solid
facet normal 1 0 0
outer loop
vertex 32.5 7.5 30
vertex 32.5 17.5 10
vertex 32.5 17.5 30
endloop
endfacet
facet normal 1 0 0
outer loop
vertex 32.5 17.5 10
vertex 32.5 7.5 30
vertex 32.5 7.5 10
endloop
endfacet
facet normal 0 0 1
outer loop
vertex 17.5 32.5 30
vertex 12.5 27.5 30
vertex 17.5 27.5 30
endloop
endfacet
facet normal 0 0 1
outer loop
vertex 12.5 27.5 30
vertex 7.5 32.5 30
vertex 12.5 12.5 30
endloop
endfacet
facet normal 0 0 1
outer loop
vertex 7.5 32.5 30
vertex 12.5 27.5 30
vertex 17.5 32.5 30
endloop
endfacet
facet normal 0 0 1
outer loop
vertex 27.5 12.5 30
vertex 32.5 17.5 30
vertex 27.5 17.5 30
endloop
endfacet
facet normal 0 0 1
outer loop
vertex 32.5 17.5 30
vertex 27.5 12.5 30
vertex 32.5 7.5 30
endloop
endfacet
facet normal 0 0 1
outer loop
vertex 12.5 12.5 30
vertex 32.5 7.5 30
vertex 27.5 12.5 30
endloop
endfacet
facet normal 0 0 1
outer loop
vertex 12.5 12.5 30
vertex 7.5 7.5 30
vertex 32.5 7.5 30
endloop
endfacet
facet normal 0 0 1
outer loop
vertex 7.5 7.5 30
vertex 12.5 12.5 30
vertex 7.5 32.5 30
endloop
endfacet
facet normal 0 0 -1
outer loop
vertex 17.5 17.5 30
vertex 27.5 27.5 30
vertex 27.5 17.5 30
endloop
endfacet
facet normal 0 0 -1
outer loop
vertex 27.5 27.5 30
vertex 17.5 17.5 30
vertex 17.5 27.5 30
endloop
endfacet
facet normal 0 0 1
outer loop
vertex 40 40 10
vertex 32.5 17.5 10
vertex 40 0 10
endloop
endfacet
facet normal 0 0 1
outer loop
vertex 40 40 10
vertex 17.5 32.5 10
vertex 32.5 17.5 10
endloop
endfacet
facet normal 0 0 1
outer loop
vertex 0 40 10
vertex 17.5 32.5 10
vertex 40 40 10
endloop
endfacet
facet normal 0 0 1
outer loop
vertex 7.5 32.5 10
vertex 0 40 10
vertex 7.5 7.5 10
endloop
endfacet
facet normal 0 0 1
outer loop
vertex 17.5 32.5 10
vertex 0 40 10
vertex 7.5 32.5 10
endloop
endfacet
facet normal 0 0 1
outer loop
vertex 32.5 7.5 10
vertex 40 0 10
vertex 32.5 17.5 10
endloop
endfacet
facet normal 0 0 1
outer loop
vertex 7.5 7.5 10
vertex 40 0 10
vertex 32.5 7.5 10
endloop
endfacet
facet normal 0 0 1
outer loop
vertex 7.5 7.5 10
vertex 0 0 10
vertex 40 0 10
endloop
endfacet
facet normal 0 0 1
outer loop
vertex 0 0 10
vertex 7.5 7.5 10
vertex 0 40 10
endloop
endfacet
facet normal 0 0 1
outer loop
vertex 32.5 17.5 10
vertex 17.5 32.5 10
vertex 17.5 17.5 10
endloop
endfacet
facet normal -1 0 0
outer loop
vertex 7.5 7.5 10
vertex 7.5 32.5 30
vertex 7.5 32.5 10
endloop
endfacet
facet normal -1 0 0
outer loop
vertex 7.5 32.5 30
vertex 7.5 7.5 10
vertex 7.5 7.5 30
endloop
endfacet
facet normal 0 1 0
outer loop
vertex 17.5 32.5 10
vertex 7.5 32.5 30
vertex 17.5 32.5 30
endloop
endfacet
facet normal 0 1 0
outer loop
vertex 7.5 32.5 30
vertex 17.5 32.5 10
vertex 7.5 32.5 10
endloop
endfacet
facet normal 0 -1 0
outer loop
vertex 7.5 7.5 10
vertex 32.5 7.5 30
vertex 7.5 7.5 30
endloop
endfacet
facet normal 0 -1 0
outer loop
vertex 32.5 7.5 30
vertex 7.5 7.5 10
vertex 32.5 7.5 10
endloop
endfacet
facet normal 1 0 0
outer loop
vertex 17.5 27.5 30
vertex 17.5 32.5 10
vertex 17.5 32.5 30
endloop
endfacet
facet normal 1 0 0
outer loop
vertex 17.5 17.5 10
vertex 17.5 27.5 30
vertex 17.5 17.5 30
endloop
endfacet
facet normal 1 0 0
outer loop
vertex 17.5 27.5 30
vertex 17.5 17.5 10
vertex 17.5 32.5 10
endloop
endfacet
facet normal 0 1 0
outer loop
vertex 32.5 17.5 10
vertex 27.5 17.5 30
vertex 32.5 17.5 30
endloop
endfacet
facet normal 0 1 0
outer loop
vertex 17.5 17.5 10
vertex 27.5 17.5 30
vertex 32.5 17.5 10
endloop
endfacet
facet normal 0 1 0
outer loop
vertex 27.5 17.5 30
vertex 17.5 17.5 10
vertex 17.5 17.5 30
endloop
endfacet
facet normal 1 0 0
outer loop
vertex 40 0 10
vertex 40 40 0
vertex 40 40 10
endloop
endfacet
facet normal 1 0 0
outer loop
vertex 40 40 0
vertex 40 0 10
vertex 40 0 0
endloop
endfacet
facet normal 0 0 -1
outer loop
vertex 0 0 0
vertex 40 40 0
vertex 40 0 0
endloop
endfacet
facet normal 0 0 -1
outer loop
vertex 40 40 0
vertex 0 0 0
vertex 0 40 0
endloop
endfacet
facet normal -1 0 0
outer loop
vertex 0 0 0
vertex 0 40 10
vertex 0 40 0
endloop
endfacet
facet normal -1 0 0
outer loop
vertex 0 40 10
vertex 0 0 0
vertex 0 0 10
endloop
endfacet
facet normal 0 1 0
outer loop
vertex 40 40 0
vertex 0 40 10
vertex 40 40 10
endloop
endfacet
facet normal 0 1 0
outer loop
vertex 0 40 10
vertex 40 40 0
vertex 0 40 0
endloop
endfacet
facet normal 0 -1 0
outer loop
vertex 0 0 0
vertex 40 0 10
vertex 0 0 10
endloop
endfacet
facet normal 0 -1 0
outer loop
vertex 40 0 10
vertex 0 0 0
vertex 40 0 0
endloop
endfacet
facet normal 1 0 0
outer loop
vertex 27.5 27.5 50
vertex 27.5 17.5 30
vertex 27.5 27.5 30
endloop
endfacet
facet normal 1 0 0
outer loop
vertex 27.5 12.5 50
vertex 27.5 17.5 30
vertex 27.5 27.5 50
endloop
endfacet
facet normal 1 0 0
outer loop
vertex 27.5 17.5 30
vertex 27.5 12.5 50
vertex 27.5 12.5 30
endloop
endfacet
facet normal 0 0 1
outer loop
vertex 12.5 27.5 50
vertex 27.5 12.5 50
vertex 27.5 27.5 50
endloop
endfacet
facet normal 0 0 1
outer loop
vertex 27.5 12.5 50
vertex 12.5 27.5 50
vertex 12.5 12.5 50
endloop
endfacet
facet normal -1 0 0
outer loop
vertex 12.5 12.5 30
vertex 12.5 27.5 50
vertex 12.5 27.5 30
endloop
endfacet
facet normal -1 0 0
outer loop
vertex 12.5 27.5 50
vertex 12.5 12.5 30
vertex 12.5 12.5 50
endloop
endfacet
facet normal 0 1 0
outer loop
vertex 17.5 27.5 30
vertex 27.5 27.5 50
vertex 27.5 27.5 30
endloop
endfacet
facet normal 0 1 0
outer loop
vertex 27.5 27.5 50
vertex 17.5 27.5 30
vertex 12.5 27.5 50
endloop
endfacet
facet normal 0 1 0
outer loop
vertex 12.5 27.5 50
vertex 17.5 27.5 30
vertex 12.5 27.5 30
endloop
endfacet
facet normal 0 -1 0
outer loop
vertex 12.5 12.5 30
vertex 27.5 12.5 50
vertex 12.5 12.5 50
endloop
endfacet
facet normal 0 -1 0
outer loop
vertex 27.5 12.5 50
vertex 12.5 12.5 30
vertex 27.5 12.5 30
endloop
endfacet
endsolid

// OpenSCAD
// Base block dimensions
module base_block() {
    // Adjusted to have a flat top surface
    cube([40, 40, 10], center = false);
}

// L-shaped block dimensions
module l_shaped_block() {
    // Adjusted proportions for balanced vertical and horizontal sections
    difference() {
        cube([25, 25, 20], center = false); // Reduced size for balance
        translate([10, 10, 0]) cube([15, 15, 20], center = false); // Adjusted cutout
    }
}

// Vertical block dimensions
module vertical_block() {
    // Adjusted to be shorter and wider
    cube([15, 15, 20], center = false);
}

// Assemble the model
module flexible_coupling() {
    // Layer 3: Base block
    base_block();

    // Layer 2: L-shaped block
    translate([7.5, 7.5, 10]) l_shaped_block(); // Adjusted position for alignment

    // Layer 1: Vertical block
    translate([12.5, 12.5, 30]) vertical_block(); // Adjusted position for alignment
}

// Render the model
flexible_coupling();
